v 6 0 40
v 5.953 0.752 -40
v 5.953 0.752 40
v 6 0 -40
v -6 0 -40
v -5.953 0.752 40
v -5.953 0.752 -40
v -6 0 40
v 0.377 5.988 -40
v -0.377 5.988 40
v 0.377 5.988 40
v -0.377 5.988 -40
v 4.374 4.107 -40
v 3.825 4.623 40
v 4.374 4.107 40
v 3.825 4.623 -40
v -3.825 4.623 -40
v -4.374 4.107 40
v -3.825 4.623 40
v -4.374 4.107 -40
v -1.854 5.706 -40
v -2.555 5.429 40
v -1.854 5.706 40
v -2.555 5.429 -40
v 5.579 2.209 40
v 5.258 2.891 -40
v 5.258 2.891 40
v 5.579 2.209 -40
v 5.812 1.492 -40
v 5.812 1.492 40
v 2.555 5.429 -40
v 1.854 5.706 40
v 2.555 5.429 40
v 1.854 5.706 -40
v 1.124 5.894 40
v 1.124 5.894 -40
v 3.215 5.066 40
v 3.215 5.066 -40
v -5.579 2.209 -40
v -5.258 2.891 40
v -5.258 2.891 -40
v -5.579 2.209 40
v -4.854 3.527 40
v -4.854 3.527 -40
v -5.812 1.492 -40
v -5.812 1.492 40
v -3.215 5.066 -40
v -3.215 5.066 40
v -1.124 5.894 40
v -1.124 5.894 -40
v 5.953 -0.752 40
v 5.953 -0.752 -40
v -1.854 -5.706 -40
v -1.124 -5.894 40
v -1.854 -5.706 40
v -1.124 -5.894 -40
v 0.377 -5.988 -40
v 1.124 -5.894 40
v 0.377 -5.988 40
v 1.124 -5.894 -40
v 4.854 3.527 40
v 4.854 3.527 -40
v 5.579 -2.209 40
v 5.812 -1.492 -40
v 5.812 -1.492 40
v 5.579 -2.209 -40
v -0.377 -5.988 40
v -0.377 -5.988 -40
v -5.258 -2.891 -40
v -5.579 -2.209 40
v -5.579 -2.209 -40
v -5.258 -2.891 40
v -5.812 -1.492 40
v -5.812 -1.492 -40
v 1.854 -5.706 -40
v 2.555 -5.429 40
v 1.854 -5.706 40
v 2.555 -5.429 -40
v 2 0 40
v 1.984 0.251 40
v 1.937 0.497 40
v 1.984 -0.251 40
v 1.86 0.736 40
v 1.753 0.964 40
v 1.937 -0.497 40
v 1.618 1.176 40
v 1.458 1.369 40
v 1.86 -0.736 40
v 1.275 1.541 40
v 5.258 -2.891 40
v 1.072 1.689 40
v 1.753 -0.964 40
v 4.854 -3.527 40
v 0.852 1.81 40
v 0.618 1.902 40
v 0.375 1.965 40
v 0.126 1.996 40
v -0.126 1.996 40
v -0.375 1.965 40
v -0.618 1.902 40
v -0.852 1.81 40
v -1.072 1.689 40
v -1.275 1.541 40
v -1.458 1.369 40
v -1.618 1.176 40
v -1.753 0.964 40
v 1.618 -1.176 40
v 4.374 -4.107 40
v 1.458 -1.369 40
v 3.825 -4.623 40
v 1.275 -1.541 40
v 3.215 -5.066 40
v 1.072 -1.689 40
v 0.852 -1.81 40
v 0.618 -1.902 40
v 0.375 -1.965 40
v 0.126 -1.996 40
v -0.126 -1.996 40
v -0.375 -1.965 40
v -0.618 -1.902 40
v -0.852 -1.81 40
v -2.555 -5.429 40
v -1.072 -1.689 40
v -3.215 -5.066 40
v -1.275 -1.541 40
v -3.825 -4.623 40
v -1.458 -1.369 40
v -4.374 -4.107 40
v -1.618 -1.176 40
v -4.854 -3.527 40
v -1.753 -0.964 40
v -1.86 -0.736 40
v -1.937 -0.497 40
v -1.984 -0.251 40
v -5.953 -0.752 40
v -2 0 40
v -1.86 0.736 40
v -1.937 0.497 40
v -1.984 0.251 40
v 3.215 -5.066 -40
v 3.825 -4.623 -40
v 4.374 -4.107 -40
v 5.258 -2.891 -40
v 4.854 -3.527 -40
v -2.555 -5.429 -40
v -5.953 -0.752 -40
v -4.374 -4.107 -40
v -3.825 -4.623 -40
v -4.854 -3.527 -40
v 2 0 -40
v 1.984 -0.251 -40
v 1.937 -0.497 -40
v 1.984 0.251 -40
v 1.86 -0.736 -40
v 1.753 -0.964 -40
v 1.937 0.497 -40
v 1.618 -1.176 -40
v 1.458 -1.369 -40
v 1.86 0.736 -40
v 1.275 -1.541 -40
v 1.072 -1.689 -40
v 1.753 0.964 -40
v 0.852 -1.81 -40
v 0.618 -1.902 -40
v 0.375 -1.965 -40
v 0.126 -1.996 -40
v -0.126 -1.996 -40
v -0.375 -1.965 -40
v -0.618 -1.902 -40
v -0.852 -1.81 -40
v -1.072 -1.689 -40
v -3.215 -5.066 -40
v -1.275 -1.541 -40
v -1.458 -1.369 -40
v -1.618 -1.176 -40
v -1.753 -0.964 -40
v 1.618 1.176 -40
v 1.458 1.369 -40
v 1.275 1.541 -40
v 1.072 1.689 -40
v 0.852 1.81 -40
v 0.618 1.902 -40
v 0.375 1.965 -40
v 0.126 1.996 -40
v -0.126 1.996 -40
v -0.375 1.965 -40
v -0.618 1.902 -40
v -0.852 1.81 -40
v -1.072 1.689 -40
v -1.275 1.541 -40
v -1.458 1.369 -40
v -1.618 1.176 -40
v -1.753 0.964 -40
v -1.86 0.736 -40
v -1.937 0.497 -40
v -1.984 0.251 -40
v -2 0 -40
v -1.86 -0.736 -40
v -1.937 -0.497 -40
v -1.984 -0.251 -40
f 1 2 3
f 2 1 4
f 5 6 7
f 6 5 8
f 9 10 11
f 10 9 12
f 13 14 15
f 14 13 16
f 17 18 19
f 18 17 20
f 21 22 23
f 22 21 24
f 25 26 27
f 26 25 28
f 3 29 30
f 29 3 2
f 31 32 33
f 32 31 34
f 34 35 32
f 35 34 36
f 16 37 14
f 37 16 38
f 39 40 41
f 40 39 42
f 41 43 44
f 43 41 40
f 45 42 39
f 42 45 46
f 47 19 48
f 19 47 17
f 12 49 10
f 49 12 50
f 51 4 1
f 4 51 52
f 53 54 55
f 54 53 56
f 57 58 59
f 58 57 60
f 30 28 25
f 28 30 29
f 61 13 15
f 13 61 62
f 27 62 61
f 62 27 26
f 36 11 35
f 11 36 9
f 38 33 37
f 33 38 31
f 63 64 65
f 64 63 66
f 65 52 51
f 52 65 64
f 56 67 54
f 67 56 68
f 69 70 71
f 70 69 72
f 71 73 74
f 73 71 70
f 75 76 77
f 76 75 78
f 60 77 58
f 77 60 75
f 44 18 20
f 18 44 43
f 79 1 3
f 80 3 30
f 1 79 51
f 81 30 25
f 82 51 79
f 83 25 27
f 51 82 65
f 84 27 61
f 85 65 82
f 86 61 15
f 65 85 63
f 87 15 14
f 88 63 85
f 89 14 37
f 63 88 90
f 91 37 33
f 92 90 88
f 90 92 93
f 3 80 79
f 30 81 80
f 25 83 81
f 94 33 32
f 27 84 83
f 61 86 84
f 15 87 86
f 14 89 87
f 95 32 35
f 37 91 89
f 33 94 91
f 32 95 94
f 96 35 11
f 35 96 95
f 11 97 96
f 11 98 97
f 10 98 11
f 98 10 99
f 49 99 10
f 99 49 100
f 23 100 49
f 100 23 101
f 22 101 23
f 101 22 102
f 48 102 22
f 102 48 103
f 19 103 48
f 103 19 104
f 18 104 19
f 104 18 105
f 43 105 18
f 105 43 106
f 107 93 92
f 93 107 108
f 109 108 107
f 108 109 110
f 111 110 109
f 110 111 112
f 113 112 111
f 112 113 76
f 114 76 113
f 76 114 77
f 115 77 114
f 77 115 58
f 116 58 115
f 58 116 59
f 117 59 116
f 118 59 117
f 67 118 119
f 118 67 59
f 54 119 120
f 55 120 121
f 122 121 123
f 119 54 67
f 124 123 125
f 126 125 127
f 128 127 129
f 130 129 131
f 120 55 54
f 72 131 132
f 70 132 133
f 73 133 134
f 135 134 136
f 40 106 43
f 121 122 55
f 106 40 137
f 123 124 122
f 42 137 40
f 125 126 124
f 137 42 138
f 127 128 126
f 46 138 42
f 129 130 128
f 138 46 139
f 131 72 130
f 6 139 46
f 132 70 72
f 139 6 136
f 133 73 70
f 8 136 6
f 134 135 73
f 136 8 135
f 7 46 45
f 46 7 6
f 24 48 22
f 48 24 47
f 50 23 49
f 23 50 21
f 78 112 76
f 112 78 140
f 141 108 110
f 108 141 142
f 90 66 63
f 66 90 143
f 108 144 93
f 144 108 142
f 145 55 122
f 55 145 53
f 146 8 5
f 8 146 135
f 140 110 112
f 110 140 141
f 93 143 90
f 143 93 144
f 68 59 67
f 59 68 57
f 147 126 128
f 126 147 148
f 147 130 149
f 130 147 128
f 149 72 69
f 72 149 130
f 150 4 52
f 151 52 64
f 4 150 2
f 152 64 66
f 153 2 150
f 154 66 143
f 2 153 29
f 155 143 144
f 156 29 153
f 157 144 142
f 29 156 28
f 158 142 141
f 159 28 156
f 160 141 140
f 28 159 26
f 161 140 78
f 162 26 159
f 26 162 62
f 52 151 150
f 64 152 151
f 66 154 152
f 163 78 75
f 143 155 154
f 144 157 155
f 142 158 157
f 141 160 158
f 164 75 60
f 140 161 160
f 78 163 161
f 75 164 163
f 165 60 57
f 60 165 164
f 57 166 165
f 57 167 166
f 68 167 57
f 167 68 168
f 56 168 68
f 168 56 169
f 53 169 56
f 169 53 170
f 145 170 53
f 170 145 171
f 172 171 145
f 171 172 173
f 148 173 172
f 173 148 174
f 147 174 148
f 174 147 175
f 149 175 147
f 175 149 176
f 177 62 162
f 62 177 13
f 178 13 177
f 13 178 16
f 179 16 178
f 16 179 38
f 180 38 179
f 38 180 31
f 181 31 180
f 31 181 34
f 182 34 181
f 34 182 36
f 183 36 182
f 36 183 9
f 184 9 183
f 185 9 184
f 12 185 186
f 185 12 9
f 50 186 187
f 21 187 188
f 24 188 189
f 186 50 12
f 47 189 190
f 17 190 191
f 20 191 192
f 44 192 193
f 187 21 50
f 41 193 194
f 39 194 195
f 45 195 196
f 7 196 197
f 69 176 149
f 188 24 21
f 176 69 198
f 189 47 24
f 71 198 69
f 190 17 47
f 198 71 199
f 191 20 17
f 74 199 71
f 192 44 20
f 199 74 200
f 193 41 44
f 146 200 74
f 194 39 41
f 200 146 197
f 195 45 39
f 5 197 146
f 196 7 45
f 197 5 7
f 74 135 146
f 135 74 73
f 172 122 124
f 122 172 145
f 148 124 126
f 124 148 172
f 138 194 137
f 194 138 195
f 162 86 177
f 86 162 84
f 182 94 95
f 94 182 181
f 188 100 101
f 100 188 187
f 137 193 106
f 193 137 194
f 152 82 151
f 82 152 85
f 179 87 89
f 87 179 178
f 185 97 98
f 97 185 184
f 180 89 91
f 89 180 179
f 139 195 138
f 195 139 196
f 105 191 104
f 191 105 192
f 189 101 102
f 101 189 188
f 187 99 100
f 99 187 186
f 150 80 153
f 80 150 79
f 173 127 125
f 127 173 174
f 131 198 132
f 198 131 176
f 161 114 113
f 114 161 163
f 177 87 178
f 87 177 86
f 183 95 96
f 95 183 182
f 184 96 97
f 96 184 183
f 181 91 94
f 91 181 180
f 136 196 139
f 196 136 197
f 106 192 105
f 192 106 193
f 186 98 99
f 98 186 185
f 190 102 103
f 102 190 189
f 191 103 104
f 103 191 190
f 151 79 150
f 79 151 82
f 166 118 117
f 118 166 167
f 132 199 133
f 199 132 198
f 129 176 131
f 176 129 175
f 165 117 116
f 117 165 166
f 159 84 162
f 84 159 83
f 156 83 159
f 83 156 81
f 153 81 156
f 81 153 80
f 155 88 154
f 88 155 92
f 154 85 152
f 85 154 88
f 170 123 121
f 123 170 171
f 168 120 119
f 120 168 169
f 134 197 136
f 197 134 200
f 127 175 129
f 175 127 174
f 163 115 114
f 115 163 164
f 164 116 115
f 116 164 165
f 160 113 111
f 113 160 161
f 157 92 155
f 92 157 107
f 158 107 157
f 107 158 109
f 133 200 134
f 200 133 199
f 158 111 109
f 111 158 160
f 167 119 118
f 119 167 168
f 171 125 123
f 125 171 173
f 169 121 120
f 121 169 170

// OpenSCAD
$fn = 50;


difference() {
	union() {
		translate(v = [0, 0, -40.0000000000]) {
			cylinder(h = 80, r = 6.0000000000);
		}
	}
	union() {
		translate(v = [0, 0, -100.0000000000]) {
			cylinder(h = 200, r = 2.0000000000);
		}
	}
}
